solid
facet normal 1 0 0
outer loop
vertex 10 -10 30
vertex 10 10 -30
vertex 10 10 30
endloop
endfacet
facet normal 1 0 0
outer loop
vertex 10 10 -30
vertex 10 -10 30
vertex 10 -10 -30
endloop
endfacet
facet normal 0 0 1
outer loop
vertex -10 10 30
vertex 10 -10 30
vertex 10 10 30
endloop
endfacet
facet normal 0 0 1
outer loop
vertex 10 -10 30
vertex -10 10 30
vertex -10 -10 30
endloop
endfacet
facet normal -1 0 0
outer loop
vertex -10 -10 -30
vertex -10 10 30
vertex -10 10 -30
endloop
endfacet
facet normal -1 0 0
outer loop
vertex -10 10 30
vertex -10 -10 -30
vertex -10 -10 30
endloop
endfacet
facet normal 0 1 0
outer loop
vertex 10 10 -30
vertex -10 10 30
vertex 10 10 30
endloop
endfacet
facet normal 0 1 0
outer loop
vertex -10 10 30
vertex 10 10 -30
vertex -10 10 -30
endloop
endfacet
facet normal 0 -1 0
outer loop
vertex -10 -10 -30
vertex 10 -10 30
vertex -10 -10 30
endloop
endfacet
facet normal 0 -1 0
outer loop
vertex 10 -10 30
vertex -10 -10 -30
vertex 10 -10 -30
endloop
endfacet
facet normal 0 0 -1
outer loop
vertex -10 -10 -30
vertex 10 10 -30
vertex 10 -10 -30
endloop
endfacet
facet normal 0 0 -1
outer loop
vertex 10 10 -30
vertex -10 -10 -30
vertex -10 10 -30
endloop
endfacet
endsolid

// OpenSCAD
// Define the dimensions of a single rectangular block
block_size = [20, 20, 10]; // [width, depth, height]

// Function to create a rectangular block
module rectangular_block() {
    cube(block_size, center = true);
}

// Assemble the blocks into layers based on the graph_dict
module flexible_coupling() {
    // Layer 1: rectangular_block_6 (topmost layer)
    translate([0, 0, 25]) rectangular_block();
    
    // Layer 2: rectangular_block_5
    translate([0, 0, 15]) rectangular_block();
    
    // Layer 3: rectangular_block_4
    translate([0, 0, 5]) rectangular_block();
    
    // Layer 4: rectangular_block_3
    translate([0, 0, -5]) rectangular_block();
    
    // Layer 5: rectangular_block_2
    translate([0, 0, -15]) rectangular_block();
    
    // Layer 6: rectangular_block_1 (bottommost layer)
    translate([0, 0, -25]) rectangular_block();
}

// Render the flexible coupling
flexible_coupling();
